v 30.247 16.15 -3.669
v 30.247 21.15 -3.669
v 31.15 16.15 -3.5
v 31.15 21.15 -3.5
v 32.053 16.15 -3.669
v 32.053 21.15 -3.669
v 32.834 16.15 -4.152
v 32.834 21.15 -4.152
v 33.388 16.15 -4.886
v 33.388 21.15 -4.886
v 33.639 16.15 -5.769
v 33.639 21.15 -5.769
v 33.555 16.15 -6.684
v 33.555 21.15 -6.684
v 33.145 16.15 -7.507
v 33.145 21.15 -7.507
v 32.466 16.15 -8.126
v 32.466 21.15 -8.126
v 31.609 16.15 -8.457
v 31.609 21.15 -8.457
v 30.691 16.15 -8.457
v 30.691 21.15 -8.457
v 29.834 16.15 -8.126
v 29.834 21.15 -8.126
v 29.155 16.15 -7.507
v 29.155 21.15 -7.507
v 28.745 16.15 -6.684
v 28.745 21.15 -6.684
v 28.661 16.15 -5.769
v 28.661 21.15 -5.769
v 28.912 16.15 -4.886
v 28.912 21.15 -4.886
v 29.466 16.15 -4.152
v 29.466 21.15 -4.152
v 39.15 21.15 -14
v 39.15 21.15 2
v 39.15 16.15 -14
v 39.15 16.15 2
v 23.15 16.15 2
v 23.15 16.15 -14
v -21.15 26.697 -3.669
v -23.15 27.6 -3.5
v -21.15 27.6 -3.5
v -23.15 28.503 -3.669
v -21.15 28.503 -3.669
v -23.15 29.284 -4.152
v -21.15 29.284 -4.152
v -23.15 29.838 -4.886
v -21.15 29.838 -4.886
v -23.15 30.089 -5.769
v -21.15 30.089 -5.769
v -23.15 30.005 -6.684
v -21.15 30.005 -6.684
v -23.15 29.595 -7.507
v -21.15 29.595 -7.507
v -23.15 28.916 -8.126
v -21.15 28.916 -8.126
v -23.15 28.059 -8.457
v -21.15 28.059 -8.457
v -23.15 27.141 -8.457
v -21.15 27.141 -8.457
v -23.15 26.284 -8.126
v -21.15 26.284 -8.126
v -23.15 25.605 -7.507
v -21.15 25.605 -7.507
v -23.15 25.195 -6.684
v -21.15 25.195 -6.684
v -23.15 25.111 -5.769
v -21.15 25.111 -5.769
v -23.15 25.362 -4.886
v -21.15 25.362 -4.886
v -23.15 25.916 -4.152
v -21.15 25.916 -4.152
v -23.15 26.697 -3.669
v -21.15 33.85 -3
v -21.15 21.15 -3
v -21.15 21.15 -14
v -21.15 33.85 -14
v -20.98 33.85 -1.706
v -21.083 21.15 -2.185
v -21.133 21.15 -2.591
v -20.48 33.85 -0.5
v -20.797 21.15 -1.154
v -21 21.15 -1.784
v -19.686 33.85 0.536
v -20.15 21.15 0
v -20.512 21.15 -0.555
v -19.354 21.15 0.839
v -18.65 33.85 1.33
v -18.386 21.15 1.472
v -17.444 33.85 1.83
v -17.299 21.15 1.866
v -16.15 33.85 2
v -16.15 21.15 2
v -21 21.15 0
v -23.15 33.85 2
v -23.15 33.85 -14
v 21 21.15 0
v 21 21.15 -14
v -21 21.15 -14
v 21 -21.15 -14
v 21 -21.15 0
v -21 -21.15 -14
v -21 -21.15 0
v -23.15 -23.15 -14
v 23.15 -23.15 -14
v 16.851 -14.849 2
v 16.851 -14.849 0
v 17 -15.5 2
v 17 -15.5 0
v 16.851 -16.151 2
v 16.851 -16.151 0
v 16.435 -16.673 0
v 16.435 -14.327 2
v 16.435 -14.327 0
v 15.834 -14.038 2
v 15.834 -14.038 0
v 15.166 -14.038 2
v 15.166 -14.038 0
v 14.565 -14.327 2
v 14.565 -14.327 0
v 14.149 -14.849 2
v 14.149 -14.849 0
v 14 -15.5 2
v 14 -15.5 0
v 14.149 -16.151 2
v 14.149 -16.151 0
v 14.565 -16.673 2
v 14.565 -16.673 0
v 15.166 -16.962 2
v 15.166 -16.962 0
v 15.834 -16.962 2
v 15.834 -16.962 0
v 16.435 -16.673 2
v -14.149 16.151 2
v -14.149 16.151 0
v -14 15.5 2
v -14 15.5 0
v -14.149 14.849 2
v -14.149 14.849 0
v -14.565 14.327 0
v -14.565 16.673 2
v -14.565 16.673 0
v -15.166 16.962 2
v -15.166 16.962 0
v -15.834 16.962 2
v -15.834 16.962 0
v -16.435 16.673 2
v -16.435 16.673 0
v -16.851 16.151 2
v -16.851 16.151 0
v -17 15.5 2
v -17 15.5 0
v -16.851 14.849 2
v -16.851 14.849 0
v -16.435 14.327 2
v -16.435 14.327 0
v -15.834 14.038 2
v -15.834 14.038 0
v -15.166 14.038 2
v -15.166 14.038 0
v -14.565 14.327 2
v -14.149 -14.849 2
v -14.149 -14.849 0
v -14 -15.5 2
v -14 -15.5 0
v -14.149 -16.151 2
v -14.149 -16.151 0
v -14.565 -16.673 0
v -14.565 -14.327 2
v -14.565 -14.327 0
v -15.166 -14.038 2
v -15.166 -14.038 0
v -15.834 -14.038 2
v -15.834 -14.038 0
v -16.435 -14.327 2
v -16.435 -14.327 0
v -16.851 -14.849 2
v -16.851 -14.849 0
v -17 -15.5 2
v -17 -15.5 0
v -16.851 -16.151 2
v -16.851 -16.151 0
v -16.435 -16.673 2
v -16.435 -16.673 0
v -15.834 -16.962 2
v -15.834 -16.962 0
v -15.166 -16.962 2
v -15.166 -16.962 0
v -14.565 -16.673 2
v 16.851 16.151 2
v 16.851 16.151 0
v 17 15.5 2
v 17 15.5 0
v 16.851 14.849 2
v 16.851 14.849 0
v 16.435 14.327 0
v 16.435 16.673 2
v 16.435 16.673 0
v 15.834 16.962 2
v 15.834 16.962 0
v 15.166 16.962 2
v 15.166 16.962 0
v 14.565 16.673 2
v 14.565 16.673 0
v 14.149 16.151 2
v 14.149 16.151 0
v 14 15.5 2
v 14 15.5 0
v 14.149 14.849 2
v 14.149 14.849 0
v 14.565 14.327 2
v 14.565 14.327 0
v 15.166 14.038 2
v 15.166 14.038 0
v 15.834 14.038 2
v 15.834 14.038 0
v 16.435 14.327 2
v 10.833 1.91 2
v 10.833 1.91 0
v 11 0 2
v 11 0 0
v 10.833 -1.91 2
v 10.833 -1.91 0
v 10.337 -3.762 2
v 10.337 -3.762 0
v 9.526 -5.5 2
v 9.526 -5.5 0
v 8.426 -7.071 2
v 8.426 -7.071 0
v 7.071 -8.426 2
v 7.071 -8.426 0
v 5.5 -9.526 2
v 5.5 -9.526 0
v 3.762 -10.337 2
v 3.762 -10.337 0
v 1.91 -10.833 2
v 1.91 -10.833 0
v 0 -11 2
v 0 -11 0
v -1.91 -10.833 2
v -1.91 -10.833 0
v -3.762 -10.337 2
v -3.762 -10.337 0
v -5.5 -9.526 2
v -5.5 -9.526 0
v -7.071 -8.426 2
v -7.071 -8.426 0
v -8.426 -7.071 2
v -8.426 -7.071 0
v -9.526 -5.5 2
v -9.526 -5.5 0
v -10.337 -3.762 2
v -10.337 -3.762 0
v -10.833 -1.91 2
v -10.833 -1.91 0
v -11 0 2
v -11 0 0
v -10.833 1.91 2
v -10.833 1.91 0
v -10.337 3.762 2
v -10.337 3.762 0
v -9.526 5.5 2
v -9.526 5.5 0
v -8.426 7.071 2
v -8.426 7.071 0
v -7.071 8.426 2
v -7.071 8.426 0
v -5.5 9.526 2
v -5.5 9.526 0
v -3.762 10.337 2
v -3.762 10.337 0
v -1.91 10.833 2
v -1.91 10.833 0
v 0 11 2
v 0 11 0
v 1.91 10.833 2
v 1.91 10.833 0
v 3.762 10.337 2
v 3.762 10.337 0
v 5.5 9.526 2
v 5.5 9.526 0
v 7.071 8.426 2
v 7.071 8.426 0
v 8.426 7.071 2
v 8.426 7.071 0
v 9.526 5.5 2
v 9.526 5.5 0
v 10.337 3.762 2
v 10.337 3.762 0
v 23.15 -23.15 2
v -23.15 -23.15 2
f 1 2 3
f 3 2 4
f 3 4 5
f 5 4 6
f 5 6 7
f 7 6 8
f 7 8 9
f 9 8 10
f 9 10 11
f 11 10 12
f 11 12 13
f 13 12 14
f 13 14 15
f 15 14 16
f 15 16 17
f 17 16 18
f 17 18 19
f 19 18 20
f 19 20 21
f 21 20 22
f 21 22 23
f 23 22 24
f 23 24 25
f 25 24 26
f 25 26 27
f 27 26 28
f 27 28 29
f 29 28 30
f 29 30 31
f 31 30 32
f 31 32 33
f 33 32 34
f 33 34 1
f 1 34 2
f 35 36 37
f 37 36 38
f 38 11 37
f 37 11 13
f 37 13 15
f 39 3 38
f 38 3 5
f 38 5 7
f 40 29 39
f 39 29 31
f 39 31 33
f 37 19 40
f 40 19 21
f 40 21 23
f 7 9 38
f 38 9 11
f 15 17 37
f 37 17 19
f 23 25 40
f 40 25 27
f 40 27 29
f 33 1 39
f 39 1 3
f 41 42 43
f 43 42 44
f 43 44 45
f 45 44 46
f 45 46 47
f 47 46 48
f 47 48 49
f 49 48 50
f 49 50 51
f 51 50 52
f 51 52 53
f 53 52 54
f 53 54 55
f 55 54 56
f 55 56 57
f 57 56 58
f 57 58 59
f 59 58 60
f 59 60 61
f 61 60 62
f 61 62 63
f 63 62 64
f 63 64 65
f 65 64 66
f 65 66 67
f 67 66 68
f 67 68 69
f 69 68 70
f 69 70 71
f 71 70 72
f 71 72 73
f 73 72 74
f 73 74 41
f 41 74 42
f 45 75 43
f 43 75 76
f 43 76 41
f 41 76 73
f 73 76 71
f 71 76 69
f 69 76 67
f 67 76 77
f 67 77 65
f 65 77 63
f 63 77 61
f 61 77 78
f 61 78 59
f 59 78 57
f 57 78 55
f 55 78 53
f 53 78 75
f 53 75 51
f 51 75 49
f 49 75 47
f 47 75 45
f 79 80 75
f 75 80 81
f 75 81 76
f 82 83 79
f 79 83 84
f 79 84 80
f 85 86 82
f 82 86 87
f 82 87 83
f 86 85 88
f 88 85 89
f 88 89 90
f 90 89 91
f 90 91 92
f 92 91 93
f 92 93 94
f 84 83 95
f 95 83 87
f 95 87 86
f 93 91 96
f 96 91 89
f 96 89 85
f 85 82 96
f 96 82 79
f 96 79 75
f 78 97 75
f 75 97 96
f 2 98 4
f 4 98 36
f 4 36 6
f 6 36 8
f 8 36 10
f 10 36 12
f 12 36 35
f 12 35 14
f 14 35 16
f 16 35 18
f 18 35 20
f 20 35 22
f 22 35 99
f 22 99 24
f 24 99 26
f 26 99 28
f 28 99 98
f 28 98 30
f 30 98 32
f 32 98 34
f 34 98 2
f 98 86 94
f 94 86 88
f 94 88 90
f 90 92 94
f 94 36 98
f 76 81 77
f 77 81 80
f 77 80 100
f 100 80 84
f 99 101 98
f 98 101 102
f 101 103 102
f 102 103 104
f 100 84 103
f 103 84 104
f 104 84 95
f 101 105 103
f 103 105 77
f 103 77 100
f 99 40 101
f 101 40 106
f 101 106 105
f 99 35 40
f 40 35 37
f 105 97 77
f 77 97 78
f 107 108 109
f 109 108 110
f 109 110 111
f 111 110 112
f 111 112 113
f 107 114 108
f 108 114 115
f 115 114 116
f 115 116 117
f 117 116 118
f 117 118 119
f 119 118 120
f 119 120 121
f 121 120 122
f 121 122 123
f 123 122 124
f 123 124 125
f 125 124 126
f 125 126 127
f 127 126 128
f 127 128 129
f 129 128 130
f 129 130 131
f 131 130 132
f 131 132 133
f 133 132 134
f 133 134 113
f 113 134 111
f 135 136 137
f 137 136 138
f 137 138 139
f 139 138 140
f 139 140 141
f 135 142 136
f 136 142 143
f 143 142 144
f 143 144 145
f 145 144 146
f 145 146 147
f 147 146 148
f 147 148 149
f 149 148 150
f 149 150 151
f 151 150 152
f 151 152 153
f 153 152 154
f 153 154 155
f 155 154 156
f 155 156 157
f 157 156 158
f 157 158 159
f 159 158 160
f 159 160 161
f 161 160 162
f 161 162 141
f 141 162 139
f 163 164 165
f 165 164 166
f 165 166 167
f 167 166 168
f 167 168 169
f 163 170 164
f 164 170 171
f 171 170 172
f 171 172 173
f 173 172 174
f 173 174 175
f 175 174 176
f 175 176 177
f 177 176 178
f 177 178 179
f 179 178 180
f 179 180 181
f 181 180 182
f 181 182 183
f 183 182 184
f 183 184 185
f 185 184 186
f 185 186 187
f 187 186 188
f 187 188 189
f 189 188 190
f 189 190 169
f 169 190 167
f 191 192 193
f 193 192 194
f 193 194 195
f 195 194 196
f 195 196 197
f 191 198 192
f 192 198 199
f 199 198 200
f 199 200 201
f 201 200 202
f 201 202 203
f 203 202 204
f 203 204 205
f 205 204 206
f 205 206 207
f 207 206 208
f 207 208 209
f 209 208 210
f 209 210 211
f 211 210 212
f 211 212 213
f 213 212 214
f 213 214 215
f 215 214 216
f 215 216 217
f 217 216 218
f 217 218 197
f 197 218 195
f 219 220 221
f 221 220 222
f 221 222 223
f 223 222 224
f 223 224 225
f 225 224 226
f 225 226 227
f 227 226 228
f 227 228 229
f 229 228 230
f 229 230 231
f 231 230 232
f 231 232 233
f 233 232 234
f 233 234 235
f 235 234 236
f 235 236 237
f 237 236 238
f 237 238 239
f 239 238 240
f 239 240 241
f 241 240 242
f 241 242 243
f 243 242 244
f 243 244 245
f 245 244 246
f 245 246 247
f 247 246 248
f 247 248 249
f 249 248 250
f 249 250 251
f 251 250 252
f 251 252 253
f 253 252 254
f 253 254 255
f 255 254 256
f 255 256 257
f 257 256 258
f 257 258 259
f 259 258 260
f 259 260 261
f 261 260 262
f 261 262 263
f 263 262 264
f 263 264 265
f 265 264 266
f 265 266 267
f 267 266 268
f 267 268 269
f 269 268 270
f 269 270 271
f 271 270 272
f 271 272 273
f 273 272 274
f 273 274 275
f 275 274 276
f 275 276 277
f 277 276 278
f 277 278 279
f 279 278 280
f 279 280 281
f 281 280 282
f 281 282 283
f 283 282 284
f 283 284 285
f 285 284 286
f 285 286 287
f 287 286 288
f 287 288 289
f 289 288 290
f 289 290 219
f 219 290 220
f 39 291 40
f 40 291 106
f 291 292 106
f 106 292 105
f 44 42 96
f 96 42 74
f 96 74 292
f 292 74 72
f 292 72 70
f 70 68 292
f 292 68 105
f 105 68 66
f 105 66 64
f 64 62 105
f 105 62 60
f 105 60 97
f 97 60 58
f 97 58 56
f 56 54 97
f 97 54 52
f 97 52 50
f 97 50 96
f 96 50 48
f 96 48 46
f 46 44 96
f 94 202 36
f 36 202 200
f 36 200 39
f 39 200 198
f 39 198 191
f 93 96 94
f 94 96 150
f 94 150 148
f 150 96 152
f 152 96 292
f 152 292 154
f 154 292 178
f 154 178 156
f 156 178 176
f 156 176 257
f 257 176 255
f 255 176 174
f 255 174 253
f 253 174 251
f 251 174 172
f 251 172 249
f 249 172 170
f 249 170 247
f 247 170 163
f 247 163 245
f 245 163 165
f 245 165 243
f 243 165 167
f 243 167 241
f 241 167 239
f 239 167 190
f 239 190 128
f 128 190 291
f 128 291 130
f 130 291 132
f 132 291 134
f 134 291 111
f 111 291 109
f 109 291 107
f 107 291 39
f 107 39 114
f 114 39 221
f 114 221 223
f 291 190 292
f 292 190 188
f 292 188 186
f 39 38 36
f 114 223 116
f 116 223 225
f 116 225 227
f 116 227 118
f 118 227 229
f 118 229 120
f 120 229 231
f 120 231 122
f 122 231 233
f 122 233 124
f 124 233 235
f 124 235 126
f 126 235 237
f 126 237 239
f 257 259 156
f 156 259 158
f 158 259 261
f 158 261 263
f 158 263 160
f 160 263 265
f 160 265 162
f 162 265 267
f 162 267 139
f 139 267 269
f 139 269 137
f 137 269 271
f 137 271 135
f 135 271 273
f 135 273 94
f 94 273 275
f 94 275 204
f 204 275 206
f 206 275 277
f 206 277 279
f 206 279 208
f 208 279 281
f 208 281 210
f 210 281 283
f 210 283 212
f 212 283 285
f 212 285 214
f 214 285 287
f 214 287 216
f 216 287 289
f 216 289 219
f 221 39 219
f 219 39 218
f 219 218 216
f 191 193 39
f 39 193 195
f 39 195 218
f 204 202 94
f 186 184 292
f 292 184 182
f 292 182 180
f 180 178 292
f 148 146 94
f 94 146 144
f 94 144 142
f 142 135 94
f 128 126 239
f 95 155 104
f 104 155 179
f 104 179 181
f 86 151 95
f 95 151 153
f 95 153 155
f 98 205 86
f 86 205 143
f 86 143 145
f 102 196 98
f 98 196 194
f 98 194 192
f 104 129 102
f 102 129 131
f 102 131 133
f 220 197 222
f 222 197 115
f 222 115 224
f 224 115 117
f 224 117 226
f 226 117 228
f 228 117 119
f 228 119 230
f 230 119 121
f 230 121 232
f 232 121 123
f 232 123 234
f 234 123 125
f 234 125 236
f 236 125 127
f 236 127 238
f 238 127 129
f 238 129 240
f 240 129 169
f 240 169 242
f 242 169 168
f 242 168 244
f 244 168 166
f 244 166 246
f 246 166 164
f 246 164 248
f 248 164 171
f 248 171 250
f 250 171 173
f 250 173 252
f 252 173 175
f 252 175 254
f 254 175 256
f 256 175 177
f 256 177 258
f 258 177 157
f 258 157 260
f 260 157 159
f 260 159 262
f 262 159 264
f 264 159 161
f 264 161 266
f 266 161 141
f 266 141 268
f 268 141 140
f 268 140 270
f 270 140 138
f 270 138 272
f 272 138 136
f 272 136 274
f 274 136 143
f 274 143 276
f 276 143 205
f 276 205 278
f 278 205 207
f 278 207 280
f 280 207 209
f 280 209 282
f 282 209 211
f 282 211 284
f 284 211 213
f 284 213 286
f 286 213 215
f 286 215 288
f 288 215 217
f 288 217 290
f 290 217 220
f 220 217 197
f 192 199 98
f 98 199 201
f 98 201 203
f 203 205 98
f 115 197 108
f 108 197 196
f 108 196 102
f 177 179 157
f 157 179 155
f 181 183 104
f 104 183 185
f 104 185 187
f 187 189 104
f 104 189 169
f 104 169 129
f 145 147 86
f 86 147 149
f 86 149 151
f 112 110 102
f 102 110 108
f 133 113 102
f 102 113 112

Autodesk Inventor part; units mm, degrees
ref_plane "YZ Plane" through (0, 0, 0) normal (1, 0, 0) x (0, 1, 0)
sketch "Sketch1" plane through (0, 0, 0) normal (0, 0, 1) x (1, 0, 0)
  line L0 (-20, 16.5858) -> (-16.5858, 20) projected
  line L1 (-20, -16.5858) -> (-20, 16.5858) projected
  line L2 (-16.5858, -20) -> (-20, -16.5858) projected
  line L3 (16.5858, -20) -> (-16.5858, -20) projected
  line L4 (20, -16.5858) -> (16.5858, -20) projected
  line L5 (20, 16.5858) -> (20, -16.5858) projected
  line L6 (16.5858, 20) -> (20, 16.5858) projected
  line L7 (-16.5858, 20) -> (16.5858, 20) projected
  circle A0 centre (15.5, -15.5) radius 1.5 projected
  circle A1 centre (-15.5, 15.5) radius 1.5 projected
  circle A2 centre (-15.5, -15.5) radius 1.5 projected
  circle A3 centre (15.5, 15.5) radius 1.5 projected
  circle A4 centre (0, 0) radius 11 projected
  circle A5 centre (0, 0) radius 4.9 projected
  line L8 (13.1931, -21.15) -> (-13.1931, -21.15) projected
  line L9 (-21.15, -13.1931) -> (-21.15, 13.1931) projected
  line L10 (21.15, 21.15) -> (-21.15, 21.15)
  line L11 (-21.15, 21.15) -> (-21.15, -21.15)
  line L12 (-21.15, -21.15) -> (21.15, -21.15)
  line L13 (21.15, -21.15) -> (21.15, 21.15)
  line L14 (21.15, 21.15) -> (-21.15, -21.15) construction
  line L15 (-21.15, 21.15) -> (21.15, -21.15) construction
  line L16 (23.15, -23.15) -> (-23.15, -23.15)
  line L17 (-23.15, -23.15) -> (-23.15, 21.15)
  line L18 (23.15, 21.15) -> (23.15, -23.15)
  line L19 (23.15, 21.15) -> (-23.15, 21.15)
  line L20 (-23.15, 21.15) -> (-23.1187, 21.15)
  line L21 (23.15, 21.15) -> (21.15, 21.15)
  line L22 (-13.1931, -21.15) -> (13.1931, -21.15)
  dimension "d0" = 2
extrude "Extrusion1" add sketch "Sketch1" along normal blind 2 contours L0 L7 L6 L5 L4 L3 L2 L1 | L12 L13 L19 L18 L16 L17 L11 L9 L8 | L8 L12 L11 L9 L10 L13
sketch "Sketch2" plane through (0, 0, 0) normal (0, 0, -1) x (-1, 0, 0)
  line L0 (21, -10) -> (21, 10) projected
  line L1 (-21, 10) -> (-21, -10) projected
  line L2 (-198.65, 21.15) -> (16.15, 21.15) projected
  line L3 (21, -21.15) -> (-21, -21.15)
  line L4 (-21, -21.15) -> (-21, 21.15)
  line L5 (-21, 21.15) -> (21, 21.15)
  line L6 (21, 21.15) -> (21, -21.15)
  line L7 (21, -21.15) -> (-21, 21.15) construction
  line L8 (-21, -21.15) -> (21, 21.15) construction
  line L9 (23.15, -23.15) -> (-23.15, -23.15) projected
  line L10 (-23.15, -23.15) -> (-23.15, 21.15) projected
  line L11 (23.15, 21.15) -> (23.15, -23.15) projected
  line L12 (-23.15, 21.15) -> (23.15, 21.15) projected
  line L13 (21, 21.15) -> (23.15, 21.15)
  line L14 (23.15, 21.15) -> (-21, 21.15)
  line L15 (-21, 21.15) -> (-23.15, 21.15)
  point P0 (0, 0)
ref_plane "Work Plane1" through (-21, -21, -14) normal (0, 0, 1) x (1, 0, 0)
extrude "Extrusion2" add sketch "Sketch2" along normal up to surface (14 mm away) contours L0 L6 L12 L11 L9 L10 L2 L4 L1 L3
sketch "Sketch3" plane through (-23.15, 21.15, 2) normal (0, 1, 0) x (1, 0, 0)
  line L0 (44.15, 2) -> (2.15, 2) projected
  line L1 (2.15, 2) -> (2.15, 16) projected
  line L2 (0, 16) -> (2.15, 16) projected
  line L3 (0, 16) -> (0, 0) projected
  line L4 (46.3, 0) -> (0, 0) projected
  line L5 (46.3, 0) -> (46.3, 16) projected
  line L6 (44.15, 16) -> (46.3, 16) projected
  line L7 (44.15, 2) -> (44.15, 16) projected
  arc A0 (2, -201.375) -> (7, -206.375) centre (7, -201.375) ccw projected
  line L8 (7, -206.375) -> (221.8, -206.375) projected
  arc A1 (221.8, -206.375) -> (226.8, -201.375) centre (221.8, -201.375) ccw projected
  line L9 (226.8, -201.375) -> (226.8, -174.375) projected
  arc A2 (226.8, -174.375) -> (221.8, -169.375) centre (221.8, -174.375) ccw projected
  line L10 (221.8, -169.375) -> (151.8, -169.375) projected
  arc A3 (146.8, -164.375) -> (151.8, -169.375) centre (151.8, -164.375) ccw projected
  line L11 (146.8, -164.375) -> (146.8, 5.625) projected
  arc A4 (151.8, 10.625) -> (146.8, 5.625) centre (151.8, 5.625) ccw projected
  line L12 (151.8, 10.625) -> (221.8, 10.625) projected
  arc A5 (221.8, 10.625) -> (226.8, 15.625) centre (221.8, 15.625) ccw projected
  line L13 (226.8, 15.625) -> (226.8, 42.625) projected
  arc A6 (226.8, 42.625) -> (221.8, 47.625) centre (221.8, 42.625) ccw projected
  line L14 (221.8, 47.625) -> (7, 47.625) projected
  arc A7 (7, 47.625) -> (2, 42.625) centre (7, 42.625) ccw projected
  line L15 (2, 42.625) -> (2, 5) projected
  arc A8 (2, 5) -> (7, 0) centre (7, 5) ccw projected
  line L16 (7, 0) -> (101.6, 0) projected
  line L17 (101.6, -158.75) -> (7, -158.75) projected
  arc A9 (7, -158.75) -> (2, -163.75) centre (7, -163.75) ccw projected
  line L18 (2, -163.75) -> (2, -201.375) projected
  line L19 (2, 5) -> (0, 5)
  circle A10 centre (208.3, 29.125) radius 5 projected
  circle A11 centre (208.3, -187.875) radius 5 projected
  circle A12 centre (20.5, 29.125) radius 5 projected
  circle A13 centre (20.5, -187.875) radius 5 projected
  arc A14 (103.6, -2) -> (101.6, 0) centre (101.6, -2) ccw projected
  line L20 (103.6, -2) -> (103.6, -156.75) projected
  arc A15 (101.6, -158.75) -> (103.6, -156.75) centre (101.6, -156.75) ccw projected
  point P0 (23.15, 2)
  point P1 (2, 16)
ref_plane "Work Plane2" through (-21.15, 33.85, -45.625) normal (0, 1, 0) x (0, 0, 1)
extrude "Extrusion3" add sketch "Sketch3" along normal up to surface (12.7 mm away) contours A8 L4 L3 L19 L1 L0 | L0 L1 A8 | L19 L3 L2 L15
sketch "Sketch4" plane through (-23.15, -23.15, -14) normal (-1, 0, 0) x (0, 0, 1)
  line L0 (0, 0) -> (0, 57) projected
  line L1 (16, 0) -> (16, 57) projected
  line L2 (0, 57) -> (16, 57)
  line L3 (16, 57) -> (16, 44.5)
  line L4 (16, 44.5) -> (0, 44.5)
  line L5 (0, 44.5) -> (0, 57)
  circle A0 centre (8, 50.75) radius 2.5
  point P0 (14, 23.15)
  dimension "d7" = 12.5
  dimension "d8" = 5
extrude "Extrusion4" cut sketch "Sketch4" against normal blind 2 contours A0
ref_plane "Work Plane3" through (81.25, 21.15, 81.375) normal (0, -1, 0) x (0, 0, 1)
sketch "Sketch5" plane through (81.25, 21.15, 81.375) normal (0, -1, 0) x (0, 0, 1)
  line L0 (-95.375, 58.1) -> (-79.375, 58.1) projected
  line L1 (-95.375, 58.1) -> (-79.375, 58.1) projected
  line L2 (-79.375, 104.4) -> (-79.375, 58.1) projected
  line L3 (-95.375, 104.4) -> (-79.375, 104.4) projected
  line L4 (-95.375, 58.1) -> (-95.375, 104.4) projected
  line L5 (-95.375, 58.1) -> (-79.375, 58.1)
  line L6 (-79.375, 58.1) -> (-79.375, 42.1)
  line L7 (-79.375, 42.1) -> (-95.375, 42.1)
  line L8 (-95.375, 42.1) -> (-95.375, 58.1)
  circle A0 centre (-87.375, 50.1) radius 2.5
  point P0 (-81.375, 81.25)
  dimension "d11" = 16
  dimension "d12" = 16
  dimension "d13" = 5
extrude "Extrusion6" add sketch "Sketch5" along normal blind 5 contours L0 L6 L7 L8
properties part number "PancakeNema17MotorMount"
